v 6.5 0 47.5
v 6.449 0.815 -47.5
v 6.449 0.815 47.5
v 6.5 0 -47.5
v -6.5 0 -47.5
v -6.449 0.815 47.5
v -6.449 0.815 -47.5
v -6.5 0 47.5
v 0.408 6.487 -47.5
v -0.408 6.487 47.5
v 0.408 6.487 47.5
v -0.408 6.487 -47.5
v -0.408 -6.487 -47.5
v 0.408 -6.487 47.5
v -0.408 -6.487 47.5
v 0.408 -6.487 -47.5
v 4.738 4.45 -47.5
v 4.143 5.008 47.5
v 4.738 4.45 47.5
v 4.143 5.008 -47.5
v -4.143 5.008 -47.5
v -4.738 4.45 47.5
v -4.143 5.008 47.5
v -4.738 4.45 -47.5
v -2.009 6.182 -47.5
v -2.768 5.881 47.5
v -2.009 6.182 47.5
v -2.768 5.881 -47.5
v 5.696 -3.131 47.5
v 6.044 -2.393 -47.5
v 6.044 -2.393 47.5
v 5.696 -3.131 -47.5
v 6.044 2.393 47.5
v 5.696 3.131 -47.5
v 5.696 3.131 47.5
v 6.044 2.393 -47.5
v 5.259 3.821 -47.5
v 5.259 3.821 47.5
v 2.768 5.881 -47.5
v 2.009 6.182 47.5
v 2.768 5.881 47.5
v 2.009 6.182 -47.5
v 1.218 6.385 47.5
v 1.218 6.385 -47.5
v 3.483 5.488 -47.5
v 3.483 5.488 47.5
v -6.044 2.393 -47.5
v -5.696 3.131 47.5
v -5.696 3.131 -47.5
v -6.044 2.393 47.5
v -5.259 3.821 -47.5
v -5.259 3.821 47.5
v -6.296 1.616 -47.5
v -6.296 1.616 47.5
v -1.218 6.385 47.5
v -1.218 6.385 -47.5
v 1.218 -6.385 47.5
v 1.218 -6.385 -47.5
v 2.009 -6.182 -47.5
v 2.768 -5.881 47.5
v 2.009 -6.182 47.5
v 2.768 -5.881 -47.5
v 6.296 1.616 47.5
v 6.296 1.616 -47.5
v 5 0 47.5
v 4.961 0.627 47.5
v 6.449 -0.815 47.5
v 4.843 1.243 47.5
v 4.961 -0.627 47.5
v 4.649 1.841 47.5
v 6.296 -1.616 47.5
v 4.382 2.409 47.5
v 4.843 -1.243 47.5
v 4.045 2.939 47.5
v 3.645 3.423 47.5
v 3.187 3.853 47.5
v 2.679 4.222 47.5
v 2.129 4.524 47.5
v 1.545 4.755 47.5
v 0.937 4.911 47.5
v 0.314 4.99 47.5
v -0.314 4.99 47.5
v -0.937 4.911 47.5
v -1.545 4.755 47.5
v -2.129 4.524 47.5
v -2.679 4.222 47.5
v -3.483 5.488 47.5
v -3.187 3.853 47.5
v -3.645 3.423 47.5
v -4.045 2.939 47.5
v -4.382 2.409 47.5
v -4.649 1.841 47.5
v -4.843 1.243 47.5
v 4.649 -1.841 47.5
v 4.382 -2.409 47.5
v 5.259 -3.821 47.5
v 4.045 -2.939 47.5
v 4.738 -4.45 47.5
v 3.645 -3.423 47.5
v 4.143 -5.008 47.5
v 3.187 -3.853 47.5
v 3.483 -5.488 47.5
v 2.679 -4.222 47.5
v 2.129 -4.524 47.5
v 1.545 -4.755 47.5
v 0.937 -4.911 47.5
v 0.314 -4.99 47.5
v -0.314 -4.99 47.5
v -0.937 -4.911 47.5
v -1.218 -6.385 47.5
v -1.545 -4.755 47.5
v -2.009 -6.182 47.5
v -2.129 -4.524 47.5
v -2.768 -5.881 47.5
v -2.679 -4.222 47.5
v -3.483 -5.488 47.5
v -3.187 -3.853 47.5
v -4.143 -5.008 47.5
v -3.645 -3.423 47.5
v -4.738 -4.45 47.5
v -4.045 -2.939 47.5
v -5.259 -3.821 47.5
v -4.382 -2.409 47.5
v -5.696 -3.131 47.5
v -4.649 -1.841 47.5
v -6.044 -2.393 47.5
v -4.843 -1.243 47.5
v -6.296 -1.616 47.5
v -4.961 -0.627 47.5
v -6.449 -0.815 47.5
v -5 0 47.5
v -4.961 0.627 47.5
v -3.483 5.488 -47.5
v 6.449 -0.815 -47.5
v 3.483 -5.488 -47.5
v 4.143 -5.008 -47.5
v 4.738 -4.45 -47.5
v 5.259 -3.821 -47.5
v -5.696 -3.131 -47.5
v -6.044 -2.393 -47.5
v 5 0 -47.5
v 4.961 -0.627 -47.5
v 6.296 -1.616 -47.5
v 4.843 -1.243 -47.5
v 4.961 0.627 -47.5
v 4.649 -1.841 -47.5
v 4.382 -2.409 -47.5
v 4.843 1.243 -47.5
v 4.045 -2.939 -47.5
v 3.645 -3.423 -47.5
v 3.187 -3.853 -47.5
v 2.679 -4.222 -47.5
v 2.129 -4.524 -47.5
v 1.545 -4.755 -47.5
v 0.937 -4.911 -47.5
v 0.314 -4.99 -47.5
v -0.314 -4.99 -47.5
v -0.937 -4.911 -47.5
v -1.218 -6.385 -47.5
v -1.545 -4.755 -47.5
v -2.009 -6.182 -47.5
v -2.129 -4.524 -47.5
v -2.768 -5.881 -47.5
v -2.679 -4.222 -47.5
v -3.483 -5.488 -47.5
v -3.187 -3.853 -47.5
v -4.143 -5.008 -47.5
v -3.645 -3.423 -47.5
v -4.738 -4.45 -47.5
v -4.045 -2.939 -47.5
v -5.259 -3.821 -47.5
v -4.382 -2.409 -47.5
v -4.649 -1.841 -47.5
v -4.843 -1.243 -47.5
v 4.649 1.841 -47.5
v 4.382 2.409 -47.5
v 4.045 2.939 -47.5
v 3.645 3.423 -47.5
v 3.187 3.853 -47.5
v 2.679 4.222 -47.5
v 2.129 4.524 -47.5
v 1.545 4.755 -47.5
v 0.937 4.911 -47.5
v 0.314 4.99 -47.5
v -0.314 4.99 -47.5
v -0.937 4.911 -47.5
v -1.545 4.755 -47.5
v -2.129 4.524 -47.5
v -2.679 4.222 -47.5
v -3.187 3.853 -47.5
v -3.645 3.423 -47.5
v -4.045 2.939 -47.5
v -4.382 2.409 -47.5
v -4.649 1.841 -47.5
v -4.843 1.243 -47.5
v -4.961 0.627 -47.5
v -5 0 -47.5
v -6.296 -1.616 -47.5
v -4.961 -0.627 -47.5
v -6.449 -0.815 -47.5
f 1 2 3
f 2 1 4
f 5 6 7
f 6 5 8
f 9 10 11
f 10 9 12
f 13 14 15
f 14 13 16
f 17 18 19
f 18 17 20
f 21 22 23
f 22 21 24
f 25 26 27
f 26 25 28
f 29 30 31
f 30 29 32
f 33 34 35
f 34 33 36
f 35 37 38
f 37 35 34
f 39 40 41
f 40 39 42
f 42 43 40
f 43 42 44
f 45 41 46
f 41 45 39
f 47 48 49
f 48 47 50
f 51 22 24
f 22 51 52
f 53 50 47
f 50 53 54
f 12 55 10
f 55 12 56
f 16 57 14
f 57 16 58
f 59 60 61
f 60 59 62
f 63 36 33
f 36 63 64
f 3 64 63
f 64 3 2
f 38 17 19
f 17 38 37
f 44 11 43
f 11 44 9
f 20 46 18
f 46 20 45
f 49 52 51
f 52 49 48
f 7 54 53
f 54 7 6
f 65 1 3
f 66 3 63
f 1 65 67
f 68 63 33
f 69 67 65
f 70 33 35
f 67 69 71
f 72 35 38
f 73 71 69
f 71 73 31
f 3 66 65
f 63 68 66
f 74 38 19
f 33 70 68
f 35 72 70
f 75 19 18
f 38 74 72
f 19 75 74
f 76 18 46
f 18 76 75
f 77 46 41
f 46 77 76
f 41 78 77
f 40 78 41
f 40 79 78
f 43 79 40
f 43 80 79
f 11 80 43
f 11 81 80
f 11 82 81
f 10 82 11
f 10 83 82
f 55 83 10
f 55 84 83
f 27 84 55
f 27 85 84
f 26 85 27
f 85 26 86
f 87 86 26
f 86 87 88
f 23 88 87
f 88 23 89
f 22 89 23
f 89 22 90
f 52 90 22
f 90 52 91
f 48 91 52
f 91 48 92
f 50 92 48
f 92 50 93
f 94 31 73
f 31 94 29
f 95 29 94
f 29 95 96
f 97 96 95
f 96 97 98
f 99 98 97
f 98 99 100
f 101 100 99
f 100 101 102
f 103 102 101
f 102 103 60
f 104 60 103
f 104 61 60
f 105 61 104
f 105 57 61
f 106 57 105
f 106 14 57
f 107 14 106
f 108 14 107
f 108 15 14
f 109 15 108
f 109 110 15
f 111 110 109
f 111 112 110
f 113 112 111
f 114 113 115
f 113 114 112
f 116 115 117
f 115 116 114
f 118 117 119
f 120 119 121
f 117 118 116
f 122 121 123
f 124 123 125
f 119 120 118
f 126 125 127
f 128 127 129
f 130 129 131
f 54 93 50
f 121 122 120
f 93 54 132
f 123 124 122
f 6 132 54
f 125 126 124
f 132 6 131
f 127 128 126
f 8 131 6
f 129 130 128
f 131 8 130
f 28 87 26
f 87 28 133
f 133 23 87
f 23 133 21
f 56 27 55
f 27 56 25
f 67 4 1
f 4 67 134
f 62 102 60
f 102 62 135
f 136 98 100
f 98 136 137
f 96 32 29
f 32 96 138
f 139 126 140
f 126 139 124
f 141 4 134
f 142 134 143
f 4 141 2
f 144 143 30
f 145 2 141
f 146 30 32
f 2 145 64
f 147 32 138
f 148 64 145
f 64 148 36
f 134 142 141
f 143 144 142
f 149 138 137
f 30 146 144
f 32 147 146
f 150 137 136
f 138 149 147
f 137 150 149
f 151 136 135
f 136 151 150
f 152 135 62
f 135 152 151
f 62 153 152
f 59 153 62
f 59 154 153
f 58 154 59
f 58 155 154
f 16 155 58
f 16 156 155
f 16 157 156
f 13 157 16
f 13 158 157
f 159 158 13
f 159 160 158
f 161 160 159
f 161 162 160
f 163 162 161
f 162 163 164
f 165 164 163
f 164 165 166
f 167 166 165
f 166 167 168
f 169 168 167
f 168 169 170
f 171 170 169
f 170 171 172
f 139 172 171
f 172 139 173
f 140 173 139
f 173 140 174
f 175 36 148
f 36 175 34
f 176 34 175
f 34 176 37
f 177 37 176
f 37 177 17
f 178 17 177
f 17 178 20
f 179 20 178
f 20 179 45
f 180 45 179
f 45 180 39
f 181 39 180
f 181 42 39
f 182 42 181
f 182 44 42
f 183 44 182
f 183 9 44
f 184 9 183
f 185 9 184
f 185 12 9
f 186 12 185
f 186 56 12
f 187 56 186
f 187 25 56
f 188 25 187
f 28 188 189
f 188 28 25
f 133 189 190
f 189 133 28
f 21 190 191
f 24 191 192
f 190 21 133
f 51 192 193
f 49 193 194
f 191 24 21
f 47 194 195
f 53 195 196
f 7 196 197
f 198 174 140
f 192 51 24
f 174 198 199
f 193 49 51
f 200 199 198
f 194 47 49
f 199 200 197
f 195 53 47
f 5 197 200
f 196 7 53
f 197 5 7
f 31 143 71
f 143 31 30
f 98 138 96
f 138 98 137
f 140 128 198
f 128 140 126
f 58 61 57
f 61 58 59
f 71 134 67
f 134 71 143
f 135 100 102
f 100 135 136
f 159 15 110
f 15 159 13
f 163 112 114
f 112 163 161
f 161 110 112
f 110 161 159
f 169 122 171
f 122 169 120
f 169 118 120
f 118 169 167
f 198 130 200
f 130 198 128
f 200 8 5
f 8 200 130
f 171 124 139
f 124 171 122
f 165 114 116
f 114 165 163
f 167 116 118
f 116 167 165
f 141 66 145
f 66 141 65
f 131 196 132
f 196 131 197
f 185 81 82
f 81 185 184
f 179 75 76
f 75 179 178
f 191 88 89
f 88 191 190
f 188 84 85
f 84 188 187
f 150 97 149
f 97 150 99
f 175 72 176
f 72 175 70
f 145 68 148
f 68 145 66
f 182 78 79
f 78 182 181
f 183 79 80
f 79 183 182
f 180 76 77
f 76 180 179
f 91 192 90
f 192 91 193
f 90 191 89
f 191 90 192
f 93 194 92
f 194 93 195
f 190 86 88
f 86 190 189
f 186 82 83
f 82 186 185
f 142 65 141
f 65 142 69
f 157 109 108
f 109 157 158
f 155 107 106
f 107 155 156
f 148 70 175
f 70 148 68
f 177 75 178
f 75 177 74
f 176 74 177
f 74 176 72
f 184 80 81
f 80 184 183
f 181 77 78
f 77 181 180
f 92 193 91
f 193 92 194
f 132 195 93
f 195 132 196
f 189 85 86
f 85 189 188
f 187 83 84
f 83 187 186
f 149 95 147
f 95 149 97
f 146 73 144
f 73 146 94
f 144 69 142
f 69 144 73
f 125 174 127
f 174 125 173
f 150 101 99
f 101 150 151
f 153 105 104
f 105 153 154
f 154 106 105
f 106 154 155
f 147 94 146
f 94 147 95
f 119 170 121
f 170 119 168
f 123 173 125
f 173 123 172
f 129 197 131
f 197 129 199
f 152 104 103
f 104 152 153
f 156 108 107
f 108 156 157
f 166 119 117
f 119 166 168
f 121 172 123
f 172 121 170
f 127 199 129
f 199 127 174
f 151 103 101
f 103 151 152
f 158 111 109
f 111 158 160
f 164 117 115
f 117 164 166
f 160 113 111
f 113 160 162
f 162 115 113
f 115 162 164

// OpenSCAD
$fn = 50;


difference() {
	union() {
		translate(v = [0, 0, -47.5000000000]) {
			cylinder(h = 95, r = 6.5000000000);
		}
	}
	union() {
		translate(v = [0, 0, -100.0000000000]) {
			cylinder(h = 200, r = 5);
		}
	}
}
